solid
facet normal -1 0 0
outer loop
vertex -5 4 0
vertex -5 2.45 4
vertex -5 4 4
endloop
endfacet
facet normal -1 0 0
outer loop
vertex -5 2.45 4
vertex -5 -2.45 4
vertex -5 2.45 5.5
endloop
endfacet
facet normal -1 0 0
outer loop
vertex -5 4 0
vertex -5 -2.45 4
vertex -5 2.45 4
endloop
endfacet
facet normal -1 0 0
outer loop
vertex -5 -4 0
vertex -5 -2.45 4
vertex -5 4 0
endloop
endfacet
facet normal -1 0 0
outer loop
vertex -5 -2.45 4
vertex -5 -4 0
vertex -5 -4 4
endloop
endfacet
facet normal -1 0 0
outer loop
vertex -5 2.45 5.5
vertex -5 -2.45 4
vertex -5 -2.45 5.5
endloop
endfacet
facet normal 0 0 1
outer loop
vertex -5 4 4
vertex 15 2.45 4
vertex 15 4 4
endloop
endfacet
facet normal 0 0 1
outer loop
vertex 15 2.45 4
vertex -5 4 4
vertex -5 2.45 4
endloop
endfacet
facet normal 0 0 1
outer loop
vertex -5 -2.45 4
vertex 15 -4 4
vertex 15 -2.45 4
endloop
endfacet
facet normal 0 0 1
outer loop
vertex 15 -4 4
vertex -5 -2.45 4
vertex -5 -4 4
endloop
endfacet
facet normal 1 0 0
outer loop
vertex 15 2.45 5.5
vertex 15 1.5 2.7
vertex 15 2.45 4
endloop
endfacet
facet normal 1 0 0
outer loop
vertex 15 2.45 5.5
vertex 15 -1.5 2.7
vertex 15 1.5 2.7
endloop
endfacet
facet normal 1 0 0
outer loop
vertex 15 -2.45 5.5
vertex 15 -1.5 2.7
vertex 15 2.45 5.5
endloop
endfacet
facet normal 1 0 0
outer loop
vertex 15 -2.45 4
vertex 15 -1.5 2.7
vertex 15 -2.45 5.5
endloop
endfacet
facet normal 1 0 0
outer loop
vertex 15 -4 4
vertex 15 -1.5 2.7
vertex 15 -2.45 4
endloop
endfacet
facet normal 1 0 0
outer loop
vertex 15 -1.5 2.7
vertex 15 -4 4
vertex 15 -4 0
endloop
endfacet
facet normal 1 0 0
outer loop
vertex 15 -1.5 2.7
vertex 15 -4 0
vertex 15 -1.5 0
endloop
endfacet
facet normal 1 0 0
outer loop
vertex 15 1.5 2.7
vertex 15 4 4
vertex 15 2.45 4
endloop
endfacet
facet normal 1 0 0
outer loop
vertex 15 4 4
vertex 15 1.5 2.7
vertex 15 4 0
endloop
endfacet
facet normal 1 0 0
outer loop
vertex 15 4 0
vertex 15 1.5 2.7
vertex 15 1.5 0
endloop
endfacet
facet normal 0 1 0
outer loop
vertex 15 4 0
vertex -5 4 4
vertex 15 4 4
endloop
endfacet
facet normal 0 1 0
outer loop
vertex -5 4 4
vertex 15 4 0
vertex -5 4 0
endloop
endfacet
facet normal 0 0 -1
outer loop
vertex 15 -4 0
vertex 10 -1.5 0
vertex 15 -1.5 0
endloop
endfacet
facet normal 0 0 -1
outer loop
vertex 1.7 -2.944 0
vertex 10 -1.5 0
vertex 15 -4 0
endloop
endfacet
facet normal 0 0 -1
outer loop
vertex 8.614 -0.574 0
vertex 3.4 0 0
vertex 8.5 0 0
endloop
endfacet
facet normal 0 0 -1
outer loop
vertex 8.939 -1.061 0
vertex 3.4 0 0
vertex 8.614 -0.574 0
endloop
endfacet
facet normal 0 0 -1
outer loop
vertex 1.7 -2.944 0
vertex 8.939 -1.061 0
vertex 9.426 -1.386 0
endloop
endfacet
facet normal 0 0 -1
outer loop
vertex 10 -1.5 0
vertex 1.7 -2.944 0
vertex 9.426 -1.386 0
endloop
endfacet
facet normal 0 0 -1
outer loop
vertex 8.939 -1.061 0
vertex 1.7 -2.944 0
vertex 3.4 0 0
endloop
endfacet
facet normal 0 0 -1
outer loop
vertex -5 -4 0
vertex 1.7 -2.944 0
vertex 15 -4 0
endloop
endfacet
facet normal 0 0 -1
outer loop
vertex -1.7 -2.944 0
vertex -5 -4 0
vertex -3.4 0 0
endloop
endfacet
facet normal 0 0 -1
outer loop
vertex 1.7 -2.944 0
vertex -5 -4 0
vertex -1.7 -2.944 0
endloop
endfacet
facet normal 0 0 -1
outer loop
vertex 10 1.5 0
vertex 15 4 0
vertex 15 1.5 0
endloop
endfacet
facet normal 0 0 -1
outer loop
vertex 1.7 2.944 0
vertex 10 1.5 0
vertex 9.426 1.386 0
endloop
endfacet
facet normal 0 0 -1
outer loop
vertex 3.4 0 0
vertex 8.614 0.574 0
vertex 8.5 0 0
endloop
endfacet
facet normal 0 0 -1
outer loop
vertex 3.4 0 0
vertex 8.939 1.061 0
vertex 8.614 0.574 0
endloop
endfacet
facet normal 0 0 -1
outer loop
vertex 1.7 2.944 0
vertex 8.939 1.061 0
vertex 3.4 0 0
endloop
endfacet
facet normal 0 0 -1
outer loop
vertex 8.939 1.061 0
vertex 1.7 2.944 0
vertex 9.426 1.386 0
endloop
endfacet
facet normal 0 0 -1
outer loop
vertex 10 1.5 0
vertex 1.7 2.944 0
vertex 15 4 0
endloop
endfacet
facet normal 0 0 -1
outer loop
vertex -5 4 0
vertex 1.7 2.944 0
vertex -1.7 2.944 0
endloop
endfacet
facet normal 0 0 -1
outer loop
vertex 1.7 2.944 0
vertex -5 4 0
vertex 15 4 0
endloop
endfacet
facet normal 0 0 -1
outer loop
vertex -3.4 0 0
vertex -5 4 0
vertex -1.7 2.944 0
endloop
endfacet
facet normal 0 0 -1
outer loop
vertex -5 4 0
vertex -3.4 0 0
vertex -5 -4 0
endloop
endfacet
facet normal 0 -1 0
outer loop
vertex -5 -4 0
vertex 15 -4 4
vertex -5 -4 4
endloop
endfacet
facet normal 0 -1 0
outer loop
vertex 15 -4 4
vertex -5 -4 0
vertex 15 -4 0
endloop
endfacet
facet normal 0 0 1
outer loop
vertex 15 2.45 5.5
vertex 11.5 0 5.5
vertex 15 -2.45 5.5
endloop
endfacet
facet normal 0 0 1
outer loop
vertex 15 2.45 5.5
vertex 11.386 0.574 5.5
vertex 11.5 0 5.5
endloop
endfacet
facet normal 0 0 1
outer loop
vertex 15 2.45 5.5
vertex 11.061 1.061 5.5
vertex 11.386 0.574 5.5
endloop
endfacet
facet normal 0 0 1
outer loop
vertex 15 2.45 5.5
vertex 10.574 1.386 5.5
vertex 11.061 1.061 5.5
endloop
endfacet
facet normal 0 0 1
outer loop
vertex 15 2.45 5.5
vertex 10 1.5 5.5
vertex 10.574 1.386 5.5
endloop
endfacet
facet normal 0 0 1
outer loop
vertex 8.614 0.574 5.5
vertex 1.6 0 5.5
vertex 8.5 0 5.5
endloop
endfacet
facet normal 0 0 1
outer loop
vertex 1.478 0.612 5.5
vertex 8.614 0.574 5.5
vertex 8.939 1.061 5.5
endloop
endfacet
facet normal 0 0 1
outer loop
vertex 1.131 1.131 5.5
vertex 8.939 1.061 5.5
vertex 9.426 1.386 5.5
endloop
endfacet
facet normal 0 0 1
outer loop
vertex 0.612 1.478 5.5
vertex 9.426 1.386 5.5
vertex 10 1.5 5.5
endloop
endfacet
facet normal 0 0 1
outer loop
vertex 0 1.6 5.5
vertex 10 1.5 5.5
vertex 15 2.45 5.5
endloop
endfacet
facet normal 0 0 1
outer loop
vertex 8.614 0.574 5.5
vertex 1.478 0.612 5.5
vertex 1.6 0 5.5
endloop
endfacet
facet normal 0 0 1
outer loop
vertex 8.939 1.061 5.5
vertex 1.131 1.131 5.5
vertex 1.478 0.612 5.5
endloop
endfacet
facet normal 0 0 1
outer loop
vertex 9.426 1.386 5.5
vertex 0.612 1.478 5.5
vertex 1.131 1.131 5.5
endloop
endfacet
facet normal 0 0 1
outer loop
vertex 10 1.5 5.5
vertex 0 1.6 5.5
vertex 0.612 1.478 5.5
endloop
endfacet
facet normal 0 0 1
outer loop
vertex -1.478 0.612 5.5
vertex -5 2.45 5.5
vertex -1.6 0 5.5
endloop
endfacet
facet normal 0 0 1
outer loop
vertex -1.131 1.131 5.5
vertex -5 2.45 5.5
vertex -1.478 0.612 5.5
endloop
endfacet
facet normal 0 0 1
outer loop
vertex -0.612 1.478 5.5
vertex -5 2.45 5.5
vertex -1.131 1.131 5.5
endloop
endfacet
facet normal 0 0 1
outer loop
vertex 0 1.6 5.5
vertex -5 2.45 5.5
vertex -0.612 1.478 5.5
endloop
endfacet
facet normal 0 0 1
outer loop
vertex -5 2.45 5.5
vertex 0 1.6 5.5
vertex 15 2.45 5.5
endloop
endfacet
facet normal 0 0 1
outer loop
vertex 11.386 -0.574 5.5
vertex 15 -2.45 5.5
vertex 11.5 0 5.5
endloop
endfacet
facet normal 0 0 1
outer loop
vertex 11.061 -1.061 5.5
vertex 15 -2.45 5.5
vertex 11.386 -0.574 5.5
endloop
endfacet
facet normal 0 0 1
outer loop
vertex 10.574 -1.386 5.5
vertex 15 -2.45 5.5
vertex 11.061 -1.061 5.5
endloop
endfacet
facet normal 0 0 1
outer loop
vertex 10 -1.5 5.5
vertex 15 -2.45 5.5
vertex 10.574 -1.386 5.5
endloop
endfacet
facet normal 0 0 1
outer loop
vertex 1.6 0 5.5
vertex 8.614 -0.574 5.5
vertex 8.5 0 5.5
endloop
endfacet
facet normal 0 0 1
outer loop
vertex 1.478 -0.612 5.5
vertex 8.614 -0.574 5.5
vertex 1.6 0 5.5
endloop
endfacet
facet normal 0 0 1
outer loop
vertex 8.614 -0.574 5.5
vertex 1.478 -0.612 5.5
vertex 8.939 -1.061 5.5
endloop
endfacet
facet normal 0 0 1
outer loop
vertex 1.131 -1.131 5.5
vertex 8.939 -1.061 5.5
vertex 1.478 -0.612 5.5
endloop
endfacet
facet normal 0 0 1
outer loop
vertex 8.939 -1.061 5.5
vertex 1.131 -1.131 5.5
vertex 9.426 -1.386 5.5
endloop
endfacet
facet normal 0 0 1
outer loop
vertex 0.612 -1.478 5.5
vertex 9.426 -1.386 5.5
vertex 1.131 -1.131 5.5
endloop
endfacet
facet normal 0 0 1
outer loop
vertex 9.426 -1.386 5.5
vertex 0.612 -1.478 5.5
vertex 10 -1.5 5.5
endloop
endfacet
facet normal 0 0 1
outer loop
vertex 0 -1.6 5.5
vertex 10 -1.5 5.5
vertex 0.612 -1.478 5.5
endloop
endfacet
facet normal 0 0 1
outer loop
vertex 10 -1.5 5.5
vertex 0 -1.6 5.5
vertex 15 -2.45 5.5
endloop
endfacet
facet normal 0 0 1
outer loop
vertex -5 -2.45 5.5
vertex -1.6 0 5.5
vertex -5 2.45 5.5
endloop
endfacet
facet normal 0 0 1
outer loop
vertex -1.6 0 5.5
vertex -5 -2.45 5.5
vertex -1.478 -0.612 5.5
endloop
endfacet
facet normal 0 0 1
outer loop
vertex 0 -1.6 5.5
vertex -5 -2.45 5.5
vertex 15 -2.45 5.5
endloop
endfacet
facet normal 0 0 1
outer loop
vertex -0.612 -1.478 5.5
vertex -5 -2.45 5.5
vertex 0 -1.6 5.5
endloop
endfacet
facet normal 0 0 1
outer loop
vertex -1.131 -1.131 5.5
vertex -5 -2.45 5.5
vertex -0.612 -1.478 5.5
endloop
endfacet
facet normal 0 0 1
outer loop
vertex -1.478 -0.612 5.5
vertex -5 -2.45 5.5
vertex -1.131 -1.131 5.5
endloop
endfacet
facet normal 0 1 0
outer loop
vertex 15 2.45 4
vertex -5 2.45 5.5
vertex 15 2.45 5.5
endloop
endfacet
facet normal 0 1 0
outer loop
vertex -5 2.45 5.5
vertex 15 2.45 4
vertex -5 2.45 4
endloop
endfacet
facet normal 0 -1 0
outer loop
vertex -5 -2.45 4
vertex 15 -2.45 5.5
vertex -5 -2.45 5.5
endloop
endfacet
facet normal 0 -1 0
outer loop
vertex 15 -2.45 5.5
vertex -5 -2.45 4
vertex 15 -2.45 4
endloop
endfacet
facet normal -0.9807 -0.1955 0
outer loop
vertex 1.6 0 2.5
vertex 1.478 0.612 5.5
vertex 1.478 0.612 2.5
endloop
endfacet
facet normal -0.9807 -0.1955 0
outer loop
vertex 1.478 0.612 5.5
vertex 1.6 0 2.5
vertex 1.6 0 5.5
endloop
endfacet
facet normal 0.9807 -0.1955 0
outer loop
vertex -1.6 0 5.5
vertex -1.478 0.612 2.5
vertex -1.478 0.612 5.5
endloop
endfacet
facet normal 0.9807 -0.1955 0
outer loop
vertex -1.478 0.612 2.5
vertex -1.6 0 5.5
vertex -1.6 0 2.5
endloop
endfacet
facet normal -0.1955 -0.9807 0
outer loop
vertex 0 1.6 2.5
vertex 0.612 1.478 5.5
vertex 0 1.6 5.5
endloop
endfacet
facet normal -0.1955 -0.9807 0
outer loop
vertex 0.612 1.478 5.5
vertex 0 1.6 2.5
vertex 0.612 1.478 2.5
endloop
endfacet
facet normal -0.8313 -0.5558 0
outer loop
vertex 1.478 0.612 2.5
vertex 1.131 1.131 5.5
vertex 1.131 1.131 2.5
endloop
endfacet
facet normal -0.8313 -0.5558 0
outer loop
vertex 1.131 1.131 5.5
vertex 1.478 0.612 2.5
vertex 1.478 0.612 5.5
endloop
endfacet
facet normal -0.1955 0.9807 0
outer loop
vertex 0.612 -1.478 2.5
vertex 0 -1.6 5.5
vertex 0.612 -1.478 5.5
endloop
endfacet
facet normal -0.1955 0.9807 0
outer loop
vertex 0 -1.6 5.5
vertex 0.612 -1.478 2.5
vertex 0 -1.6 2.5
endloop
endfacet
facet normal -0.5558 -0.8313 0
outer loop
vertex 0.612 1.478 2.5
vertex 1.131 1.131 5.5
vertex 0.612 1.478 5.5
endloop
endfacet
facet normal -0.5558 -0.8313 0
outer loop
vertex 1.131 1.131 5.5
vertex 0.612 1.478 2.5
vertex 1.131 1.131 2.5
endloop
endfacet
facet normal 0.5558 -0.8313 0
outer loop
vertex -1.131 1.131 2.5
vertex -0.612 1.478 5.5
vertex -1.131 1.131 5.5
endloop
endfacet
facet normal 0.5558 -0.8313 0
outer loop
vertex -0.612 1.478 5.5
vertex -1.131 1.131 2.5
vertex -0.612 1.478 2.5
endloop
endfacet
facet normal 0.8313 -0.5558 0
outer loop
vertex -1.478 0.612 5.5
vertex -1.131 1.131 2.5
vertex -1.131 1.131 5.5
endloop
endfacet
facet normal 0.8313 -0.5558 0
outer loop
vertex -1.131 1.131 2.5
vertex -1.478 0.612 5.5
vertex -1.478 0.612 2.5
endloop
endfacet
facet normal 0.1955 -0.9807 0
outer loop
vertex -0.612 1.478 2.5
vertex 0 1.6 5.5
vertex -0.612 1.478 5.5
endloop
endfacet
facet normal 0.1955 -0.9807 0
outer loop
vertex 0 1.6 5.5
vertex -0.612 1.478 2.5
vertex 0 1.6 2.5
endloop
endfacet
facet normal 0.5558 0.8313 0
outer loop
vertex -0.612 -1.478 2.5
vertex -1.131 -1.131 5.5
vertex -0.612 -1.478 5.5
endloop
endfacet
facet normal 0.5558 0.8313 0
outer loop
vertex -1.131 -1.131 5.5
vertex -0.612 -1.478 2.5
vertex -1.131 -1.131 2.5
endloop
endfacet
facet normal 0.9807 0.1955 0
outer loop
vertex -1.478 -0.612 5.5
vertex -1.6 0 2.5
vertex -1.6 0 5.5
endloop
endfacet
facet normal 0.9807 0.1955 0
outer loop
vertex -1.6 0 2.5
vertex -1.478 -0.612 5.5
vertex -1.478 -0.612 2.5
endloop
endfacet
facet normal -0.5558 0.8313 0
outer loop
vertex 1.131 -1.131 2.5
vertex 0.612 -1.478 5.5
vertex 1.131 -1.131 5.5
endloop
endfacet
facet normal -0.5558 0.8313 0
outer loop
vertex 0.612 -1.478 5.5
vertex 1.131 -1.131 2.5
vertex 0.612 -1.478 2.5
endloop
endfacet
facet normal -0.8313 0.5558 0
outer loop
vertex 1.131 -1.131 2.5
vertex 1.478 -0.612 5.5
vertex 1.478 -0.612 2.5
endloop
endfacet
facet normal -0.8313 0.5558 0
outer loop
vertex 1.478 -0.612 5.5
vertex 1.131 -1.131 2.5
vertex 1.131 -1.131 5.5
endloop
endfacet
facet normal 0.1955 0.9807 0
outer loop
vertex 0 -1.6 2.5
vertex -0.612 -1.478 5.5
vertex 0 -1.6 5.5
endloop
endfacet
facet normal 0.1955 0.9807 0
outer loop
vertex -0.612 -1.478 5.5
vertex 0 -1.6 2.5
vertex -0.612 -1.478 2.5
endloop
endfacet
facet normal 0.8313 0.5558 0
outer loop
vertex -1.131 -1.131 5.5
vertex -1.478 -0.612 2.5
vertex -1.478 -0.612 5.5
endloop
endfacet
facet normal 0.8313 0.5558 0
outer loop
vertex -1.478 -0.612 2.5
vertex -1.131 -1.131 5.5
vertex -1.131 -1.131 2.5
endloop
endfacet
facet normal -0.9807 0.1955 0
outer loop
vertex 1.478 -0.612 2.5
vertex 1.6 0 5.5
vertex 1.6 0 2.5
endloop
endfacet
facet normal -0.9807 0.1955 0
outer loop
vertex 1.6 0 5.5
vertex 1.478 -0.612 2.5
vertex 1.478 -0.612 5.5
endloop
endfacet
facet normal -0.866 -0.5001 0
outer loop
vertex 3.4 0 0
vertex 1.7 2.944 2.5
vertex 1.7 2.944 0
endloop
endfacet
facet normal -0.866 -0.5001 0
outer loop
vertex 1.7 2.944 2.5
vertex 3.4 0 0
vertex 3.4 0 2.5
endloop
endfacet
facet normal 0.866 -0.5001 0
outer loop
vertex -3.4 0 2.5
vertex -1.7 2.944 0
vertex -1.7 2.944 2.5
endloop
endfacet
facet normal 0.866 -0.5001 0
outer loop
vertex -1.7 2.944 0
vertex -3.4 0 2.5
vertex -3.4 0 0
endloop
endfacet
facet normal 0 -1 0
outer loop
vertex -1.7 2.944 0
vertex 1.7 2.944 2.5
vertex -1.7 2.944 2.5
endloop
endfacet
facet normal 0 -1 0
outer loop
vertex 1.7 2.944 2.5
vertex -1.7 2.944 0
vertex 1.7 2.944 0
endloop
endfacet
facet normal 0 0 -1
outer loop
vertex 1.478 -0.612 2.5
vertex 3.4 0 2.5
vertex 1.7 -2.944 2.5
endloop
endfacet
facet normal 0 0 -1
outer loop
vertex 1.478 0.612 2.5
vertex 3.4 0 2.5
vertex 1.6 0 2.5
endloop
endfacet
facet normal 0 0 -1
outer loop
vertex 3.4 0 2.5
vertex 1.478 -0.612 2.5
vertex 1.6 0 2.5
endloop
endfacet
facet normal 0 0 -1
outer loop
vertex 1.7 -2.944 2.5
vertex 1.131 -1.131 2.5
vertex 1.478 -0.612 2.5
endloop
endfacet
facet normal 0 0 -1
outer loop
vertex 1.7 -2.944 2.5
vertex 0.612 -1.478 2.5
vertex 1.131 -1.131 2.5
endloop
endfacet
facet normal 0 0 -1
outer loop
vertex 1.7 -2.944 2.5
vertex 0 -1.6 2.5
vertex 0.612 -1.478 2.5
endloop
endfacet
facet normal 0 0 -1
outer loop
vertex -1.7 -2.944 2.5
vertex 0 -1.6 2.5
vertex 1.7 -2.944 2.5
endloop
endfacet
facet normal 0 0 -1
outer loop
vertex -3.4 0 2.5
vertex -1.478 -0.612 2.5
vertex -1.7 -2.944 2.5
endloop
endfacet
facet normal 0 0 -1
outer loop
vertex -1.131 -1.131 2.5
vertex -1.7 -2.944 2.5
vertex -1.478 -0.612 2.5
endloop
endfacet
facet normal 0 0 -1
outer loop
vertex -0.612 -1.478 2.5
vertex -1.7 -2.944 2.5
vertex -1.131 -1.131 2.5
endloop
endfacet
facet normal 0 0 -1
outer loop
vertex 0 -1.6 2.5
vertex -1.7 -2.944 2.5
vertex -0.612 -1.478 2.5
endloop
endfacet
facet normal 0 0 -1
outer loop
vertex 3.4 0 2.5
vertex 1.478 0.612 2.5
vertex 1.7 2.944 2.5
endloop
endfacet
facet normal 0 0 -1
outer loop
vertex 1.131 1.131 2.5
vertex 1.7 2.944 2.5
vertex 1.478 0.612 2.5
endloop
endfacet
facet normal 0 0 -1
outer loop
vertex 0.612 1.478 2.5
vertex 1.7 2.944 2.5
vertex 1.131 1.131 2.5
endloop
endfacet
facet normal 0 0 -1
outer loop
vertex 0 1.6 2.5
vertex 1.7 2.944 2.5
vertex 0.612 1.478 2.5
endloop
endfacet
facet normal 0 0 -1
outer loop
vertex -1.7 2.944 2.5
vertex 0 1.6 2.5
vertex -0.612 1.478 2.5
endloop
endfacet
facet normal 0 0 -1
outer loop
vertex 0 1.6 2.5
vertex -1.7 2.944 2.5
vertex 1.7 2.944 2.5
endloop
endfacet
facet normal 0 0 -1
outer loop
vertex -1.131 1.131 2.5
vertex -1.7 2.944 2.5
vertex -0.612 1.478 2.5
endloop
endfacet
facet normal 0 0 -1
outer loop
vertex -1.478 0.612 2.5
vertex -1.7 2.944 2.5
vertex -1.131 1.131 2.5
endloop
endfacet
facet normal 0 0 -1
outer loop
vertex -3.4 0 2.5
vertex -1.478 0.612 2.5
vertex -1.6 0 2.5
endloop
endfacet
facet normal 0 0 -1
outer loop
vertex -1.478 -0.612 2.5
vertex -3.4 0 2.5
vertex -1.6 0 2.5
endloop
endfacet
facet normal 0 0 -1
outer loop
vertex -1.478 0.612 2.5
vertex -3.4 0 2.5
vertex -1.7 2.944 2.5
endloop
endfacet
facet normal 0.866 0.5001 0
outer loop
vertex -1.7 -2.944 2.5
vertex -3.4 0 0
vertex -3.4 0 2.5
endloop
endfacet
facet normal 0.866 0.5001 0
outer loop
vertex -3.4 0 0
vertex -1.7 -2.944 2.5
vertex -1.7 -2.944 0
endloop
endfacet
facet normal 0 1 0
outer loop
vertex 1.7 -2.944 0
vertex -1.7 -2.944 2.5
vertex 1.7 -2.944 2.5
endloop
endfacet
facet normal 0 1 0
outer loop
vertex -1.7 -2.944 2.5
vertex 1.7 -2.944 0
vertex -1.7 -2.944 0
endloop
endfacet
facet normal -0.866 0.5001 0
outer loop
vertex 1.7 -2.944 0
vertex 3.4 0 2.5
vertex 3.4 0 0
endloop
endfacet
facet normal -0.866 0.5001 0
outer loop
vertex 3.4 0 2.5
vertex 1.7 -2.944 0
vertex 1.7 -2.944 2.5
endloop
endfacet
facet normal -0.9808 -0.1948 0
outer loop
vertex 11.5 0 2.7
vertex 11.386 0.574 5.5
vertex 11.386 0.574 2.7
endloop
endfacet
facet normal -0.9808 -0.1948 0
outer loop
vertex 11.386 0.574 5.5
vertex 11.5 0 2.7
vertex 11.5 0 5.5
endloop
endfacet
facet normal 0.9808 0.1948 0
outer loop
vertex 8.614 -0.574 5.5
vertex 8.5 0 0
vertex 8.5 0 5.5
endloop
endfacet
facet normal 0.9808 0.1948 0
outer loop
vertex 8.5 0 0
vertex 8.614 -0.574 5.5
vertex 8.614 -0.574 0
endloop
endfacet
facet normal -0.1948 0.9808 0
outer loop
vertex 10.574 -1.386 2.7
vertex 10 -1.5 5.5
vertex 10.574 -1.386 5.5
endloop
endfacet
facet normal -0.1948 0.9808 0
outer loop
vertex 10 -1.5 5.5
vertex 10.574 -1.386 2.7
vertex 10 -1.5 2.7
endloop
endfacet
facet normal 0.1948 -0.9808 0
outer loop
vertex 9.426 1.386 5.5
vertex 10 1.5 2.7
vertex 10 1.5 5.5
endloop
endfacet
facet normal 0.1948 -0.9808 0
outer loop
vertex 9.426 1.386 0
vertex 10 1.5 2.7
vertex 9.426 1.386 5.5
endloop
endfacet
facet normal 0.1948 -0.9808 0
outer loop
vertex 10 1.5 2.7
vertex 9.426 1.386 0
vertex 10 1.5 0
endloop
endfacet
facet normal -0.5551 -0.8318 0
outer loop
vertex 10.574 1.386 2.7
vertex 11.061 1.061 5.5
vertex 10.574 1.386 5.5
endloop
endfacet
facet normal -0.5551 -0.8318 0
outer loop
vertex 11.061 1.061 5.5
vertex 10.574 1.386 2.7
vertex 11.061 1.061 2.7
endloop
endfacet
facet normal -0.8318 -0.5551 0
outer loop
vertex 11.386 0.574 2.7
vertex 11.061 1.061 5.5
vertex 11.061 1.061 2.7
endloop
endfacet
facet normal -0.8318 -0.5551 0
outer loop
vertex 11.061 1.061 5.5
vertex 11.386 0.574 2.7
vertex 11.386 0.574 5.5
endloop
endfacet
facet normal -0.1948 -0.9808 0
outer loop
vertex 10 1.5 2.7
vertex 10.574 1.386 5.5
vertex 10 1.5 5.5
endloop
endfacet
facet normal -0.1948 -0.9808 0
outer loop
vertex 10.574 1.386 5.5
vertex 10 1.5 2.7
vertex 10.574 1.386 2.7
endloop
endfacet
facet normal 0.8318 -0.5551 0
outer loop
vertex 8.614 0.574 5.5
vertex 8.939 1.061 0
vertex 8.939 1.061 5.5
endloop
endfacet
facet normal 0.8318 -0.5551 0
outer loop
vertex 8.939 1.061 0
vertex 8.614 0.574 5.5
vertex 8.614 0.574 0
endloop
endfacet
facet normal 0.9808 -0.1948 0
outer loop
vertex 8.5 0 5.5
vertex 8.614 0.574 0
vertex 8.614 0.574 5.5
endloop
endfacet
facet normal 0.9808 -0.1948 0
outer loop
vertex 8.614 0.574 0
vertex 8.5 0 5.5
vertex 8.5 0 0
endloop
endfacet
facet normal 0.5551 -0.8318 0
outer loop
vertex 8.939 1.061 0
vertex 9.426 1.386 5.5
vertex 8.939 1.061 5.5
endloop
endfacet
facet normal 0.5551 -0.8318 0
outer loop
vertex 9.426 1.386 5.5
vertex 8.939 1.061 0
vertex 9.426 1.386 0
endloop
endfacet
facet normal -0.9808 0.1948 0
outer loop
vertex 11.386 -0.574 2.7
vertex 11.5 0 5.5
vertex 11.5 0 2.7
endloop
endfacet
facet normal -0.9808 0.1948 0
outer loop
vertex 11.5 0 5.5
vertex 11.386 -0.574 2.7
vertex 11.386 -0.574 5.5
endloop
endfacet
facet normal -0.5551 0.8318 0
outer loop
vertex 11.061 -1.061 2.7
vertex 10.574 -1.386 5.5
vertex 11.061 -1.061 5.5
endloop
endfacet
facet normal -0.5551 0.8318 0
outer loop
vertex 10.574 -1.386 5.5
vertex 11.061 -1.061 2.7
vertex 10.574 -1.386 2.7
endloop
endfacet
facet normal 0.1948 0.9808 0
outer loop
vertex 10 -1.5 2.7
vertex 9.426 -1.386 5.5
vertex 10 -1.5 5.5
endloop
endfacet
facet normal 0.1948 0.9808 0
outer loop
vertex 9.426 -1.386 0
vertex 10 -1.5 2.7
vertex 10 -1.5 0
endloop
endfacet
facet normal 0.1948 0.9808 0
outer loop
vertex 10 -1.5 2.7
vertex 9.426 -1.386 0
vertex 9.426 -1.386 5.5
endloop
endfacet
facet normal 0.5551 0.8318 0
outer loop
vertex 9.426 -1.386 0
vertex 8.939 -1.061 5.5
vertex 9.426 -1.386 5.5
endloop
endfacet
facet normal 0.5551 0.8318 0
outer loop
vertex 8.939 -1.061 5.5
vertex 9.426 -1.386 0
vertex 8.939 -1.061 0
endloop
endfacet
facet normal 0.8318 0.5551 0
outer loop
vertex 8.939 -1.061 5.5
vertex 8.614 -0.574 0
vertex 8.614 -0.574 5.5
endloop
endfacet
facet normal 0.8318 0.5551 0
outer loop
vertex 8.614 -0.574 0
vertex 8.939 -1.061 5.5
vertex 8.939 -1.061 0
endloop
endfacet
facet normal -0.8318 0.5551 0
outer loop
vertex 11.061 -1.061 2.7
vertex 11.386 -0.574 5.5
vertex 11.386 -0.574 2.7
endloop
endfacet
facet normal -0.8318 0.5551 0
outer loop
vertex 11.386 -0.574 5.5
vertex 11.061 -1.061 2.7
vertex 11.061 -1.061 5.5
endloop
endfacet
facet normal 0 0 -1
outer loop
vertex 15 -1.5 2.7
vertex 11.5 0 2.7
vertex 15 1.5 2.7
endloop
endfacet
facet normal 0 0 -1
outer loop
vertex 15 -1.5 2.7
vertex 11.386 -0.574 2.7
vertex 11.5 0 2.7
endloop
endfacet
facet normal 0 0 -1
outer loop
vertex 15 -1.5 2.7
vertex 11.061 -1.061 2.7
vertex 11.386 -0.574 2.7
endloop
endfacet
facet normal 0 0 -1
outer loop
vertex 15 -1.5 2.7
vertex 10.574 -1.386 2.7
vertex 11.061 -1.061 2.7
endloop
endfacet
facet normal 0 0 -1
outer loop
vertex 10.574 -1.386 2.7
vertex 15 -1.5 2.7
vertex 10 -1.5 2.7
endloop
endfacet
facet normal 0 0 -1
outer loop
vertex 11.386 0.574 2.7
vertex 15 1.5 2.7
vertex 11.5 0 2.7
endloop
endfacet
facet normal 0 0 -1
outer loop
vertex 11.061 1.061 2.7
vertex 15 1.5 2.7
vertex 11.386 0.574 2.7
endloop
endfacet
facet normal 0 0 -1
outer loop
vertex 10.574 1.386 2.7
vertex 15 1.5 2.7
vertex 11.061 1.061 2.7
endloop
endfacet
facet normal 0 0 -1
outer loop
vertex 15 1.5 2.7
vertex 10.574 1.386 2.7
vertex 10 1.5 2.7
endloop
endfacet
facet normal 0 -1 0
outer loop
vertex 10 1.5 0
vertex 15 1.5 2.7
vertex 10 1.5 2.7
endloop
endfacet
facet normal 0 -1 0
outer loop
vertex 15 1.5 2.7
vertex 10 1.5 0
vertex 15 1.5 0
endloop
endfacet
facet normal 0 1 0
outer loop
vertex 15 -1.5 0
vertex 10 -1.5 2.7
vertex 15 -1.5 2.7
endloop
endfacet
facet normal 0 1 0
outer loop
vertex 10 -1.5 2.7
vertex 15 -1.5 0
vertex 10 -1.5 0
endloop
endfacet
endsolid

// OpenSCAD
module clamp()
{
    difference()
    {
        union()
        {
            translate([-5, -4, 0])
                cube([20, 8, 4]);
            translate([-5, -4.9/2, 4])
                cube([20, 4.9, 1.5]);
        }
        
        translate([0,0,1.2])
            cylinder(r=3.2/2, h=10, $fn=16);
        cylinder(r=6.8/2, h=2.5, $fn=6);
        
        translate([10,0,0])
            cylinder(r=3/2, h=10, $fn=16);
        translate([10,-3/2,0])
            cube([10, 3, 2.7]);
        
    }
}


clamp();
